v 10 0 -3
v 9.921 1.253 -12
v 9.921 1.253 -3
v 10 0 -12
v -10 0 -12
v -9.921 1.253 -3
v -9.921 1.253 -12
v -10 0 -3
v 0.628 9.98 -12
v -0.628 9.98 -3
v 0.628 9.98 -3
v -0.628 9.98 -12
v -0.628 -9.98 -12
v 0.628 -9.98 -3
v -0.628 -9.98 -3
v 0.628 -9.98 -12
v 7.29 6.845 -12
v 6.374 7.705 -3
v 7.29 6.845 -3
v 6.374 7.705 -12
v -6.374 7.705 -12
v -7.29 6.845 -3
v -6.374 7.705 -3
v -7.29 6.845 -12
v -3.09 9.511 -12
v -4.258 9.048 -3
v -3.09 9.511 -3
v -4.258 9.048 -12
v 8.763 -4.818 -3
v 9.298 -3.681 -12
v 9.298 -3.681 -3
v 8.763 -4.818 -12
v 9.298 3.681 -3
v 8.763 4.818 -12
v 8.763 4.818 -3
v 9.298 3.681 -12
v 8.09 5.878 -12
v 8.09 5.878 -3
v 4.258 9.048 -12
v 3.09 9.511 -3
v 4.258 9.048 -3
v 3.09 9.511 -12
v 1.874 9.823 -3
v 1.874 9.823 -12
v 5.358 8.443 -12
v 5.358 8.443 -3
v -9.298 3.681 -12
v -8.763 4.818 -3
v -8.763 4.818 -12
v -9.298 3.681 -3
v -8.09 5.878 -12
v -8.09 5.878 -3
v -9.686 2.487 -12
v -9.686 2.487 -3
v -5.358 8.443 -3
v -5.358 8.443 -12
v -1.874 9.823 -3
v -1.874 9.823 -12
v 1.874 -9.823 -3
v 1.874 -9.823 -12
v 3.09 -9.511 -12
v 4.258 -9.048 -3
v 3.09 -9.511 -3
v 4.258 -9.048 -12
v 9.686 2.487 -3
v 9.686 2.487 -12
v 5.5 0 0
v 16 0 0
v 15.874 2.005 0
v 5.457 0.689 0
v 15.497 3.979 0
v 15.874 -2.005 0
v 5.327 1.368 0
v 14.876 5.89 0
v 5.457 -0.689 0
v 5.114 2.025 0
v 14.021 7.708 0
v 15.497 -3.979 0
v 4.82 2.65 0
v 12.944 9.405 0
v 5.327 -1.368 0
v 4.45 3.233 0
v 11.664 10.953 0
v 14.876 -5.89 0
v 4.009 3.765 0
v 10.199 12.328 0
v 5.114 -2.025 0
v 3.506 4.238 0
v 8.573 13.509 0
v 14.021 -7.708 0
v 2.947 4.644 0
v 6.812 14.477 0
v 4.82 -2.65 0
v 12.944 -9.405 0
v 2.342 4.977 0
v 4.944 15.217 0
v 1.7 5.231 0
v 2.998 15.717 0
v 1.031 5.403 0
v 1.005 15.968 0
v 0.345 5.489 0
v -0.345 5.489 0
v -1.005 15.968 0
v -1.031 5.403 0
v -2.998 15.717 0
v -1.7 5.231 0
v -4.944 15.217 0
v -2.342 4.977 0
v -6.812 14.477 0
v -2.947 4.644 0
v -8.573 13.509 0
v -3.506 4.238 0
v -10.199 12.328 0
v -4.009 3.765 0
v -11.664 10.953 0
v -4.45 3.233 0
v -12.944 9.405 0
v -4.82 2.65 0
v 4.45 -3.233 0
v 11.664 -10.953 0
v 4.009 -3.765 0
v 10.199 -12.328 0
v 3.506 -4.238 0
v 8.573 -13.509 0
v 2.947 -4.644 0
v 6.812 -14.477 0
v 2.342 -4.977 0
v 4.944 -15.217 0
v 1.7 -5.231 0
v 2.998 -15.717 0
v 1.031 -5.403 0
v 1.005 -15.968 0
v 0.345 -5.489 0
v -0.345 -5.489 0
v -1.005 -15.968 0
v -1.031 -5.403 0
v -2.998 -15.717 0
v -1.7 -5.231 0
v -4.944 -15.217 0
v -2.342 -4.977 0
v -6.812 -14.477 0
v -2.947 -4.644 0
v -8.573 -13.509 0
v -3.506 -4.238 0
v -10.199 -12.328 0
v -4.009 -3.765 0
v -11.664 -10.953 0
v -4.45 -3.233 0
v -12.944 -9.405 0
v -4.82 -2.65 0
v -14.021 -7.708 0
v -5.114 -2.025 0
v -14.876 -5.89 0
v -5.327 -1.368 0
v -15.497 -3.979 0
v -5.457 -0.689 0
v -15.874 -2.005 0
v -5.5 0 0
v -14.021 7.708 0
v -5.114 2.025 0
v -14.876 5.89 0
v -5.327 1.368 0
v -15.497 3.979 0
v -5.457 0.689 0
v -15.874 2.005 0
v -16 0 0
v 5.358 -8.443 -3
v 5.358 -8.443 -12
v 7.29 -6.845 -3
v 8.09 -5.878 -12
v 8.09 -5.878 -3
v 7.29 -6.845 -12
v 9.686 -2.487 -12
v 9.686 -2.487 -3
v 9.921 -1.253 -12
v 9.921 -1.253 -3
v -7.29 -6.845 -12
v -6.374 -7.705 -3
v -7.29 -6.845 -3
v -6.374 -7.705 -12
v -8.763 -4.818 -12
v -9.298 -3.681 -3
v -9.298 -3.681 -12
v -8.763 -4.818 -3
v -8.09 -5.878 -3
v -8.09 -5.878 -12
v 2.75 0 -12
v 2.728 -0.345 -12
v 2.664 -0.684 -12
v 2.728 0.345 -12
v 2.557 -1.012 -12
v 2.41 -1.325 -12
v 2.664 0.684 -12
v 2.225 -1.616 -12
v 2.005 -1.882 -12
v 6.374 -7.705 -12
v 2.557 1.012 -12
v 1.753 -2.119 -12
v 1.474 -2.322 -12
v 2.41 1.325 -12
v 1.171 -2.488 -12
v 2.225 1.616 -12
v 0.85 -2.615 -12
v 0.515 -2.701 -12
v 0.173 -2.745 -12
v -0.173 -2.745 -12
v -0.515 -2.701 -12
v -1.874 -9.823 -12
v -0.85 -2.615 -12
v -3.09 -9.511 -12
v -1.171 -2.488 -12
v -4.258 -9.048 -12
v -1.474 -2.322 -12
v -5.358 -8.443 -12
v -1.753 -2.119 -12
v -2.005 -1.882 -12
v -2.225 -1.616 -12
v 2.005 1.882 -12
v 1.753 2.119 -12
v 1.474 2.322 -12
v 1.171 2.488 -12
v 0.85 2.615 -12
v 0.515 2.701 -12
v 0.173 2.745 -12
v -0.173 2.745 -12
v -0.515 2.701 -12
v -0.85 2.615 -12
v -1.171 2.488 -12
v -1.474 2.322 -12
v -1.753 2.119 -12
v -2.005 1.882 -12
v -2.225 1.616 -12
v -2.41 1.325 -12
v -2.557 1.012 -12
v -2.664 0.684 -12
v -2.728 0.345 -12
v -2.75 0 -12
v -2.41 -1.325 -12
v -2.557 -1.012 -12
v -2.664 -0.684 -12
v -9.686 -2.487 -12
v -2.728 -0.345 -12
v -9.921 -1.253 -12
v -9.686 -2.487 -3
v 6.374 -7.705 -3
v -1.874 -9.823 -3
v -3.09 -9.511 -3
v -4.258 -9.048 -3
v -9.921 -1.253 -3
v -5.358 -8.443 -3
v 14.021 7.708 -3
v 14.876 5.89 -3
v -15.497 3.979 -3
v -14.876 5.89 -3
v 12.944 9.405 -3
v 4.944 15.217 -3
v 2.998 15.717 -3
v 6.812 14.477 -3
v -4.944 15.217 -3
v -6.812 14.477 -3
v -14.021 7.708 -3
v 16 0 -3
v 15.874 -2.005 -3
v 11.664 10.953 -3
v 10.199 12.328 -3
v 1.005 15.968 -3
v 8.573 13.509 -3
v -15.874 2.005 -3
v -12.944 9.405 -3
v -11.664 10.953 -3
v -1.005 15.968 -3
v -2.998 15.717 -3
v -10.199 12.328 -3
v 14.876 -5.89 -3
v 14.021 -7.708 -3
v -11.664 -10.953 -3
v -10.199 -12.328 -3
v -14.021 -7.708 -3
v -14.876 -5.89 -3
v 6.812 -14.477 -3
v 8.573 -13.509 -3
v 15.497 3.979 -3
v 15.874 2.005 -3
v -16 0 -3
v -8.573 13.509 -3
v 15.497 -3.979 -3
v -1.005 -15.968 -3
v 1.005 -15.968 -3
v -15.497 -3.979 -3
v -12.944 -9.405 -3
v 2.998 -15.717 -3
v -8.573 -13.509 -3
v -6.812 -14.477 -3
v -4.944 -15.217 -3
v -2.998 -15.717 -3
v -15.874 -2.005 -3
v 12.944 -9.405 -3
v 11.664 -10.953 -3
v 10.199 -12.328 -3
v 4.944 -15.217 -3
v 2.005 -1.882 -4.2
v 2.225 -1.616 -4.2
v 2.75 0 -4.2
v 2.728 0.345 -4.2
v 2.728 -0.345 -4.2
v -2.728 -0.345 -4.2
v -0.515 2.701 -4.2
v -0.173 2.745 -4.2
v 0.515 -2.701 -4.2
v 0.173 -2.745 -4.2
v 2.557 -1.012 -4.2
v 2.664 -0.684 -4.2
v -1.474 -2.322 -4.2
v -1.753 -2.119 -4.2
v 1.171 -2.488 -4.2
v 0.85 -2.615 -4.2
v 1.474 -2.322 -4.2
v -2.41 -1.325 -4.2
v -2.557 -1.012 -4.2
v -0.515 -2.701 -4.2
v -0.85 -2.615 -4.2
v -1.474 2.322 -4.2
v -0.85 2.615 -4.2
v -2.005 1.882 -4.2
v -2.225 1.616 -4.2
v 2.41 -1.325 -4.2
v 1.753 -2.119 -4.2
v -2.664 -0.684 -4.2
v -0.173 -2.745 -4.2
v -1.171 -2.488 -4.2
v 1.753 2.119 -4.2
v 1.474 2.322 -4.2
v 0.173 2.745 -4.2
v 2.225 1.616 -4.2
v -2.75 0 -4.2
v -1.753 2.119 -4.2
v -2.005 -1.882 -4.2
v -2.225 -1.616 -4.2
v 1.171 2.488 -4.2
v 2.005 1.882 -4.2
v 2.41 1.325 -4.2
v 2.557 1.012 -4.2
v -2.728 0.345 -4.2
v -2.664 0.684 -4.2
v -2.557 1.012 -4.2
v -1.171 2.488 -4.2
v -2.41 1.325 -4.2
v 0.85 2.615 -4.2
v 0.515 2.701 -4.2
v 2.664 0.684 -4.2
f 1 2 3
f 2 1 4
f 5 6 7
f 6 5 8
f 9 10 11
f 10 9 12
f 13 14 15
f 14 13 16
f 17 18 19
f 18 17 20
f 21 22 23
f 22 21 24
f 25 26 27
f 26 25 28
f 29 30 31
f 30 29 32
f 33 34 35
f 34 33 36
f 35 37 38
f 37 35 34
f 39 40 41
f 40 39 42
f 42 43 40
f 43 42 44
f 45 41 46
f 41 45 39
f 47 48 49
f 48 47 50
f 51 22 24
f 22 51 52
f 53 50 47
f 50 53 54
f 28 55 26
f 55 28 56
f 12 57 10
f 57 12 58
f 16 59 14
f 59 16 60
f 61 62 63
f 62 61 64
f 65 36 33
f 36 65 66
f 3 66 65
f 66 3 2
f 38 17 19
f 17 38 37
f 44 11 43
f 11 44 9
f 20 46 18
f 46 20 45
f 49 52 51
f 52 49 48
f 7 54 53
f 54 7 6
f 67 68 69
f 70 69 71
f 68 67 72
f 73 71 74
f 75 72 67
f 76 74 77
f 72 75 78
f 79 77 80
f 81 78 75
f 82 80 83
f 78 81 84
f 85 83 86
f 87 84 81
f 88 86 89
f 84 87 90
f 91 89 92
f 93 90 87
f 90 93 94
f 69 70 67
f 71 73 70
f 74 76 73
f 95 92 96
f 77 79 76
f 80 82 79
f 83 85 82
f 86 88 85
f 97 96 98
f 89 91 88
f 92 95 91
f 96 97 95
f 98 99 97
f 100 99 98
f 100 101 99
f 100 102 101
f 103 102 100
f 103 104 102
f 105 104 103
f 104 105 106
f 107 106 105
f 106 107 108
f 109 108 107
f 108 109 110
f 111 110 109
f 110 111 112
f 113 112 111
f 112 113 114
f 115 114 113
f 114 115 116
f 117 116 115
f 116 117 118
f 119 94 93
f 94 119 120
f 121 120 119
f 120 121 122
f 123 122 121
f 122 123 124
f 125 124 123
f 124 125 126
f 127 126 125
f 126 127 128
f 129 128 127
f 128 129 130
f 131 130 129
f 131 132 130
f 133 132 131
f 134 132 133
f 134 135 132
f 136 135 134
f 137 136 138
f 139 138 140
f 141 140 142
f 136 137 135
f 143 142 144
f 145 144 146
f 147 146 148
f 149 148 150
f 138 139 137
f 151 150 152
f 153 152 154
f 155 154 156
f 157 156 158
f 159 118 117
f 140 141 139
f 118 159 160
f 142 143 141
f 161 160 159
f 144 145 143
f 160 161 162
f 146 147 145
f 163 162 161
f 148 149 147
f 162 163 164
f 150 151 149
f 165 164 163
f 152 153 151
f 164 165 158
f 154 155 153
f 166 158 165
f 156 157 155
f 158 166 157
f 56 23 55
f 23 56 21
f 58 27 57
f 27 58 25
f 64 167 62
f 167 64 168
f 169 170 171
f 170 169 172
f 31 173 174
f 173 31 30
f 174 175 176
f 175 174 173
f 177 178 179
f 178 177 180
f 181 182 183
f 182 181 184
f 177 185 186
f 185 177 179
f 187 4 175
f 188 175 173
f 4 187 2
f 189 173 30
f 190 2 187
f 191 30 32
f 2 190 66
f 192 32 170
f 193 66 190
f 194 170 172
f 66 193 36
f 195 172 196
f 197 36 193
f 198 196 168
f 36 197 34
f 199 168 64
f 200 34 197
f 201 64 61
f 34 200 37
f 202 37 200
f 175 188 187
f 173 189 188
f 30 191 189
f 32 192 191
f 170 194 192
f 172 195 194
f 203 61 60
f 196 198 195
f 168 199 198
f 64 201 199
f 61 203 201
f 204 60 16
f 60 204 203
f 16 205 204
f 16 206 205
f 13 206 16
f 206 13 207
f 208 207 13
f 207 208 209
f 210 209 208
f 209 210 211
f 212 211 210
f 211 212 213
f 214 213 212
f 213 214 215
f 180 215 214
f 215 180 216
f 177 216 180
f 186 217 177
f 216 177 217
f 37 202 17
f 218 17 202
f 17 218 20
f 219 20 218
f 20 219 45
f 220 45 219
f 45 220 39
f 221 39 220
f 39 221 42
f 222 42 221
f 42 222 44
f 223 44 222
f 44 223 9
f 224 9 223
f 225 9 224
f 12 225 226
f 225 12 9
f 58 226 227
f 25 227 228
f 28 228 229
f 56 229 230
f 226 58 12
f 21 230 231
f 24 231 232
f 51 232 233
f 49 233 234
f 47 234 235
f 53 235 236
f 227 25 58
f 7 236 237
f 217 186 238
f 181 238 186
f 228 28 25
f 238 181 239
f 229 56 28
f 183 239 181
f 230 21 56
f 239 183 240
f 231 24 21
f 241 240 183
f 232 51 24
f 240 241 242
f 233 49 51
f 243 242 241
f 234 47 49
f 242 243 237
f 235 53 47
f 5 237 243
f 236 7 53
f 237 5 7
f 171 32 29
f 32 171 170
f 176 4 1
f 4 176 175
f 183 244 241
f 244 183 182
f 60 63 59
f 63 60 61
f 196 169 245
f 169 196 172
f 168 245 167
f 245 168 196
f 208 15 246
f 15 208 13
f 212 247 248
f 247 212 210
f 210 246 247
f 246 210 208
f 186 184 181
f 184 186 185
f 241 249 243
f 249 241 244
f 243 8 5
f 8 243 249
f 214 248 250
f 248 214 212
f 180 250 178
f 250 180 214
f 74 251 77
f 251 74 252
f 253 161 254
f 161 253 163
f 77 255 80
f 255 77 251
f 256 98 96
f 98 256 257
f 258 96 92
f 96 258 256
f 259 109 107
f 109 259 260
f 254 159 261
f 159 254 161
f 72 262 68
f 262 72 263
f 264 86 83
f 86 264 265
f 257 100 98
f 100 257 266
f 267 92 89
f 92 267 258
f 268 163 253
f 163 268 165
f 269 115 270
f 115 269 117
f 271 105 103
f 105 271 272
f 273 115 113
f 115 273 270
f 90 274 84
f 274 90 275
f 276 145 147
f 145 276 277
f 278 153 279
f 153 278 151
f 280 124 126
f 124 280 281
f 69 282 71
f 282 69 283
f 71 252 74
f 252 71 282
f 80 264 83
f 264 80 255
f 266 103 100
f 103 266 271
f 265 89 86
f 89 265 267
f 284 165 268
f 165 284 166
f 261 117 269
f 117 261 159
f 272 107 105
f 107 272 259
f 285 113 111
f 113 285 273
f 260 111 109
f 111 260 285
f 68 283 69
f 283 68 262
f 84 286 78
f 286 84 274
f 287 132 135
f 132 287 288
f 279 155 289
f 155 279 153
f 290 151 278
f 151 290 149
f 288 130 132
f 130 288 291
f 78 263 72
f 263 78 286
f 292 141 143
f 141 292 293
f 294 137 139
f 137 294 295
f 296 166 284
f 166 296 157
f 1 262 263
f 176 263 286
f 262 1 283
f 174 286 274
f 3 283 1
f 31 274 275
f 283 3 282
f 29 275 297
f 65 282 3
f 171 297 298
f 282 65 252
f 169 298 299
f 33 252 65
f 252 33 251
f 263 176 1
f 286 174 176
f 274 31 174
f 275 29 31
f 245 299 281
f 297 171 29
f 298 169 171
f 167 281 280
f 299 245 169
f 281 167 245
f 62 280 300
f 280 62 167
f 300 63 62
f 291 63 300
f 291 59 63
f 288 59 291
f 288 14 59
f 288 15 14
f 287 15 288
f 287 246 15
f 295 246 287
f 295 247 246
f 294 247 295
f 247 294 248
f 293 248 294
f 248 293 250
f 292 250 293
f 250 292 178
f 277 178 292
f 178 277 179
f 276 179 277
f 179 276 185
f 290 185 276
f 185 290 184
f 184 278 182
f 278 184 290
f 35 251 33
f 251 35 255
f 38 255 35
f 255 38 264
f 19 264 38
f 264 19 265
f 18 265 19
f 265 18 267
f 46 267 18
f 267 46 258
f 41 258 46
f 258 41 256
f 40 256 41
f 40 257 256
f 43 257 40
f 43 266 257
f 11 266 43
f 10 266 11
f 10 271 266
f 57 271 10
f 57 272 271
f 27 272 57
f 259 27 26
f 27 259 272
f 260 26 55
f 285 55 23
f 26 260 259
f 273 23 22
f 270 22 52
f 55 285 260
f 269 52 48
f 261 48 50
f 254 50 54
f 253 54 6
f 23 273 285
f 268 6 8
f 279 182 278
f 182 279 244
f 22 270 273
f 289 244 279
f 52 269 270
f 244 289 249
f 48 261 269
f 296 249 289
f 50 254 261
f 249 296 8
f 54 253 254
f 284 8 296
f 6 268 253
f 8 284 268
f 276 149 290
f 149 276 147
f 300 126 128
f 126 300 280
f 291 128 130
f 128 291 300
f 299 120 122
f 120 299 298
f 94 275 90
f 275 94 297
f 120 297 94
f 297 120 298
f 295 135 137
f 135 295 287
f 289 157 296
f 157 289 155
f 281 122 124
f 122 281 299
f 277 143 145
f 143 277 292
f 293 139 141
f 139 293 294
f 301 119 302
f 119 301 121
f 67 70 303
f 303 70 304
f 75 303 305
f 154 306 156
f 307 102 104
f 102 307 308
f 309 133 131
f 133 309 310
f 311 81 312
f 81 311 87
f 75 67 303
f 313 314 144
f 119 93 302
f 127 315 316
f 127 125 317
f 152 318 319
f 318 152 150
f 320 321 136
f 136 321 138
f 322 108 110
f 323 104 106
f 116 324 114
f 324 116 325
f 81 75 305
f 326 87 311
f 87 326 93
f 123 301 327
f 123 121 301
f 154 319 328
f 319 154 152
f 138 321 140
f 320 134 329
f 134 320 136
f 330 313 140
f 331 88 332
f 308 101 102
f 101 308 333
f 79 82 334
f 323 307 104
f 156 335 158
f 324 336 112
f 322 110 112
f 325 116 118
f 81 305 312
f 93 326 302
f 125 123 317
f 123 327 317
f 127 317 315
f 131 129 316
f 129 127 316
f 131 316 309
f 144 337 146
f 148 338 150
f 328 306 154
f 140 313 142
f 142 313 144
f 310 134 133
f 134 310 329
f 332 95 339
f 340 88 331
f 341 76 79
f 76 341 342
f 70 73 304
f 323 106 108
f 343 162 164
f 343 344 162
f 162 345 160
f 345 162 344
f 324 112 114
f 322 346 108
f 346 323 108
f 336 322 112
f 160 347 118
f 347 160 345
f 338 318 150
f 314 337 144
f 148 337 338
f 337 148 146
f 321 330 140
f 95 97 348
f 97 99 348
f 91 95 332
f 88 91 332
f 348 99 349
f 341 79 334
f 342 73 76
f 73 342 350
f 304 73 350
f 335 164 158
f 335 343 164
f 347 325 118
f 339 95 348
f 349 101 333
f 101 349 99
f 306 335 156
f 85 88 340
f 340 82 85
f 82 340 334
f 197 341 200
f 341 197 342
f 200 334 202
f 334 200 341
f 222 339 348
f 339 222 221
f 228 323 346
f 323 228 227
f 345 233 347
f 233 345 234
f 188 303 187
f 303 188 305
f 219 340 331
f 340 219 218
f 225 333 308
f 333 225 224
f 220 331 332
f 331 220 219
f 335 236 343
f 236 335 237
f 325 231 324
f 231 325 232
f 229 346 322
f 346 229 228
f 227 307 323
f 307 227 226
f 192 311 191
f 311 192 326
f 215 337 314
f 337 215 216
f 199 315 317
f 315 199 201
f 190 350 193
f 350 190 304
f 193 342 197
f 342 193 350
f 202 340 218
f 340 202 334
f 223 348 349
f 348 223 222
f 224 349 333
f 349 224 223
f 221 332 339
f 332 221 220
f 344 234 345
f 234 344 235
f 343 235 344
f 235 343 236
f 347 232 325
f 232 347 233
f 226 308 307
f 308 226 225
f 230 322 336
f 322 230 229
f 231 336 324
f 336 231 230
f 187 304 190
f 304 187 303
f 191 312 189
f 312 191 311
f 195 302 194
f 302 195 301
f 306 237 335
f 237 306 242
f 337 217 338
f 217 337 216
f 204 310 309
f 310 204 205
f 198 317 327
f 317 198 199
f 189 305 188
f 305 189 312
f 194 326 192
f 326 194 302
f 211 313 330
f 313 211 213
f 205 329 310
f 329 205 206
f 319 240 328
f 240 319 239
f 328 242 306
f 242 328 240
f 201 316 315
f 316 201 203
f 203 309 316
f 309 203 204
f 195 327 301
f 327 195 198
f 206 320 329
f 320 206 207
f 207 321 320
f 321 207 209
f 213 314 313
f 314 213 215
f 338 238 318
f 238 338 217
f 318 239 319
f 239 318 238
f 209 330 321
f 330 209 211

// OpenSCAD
$fn = 50;


difference() {
	union() {
		translate(v = [0, 0, -12.0000000000]) {
			cylinder(h = 12, r = 10.0000000000);
		}
		translate(v = [0, 0, -3.0000000000]) {
			cylinder(h = 3, r = 16.0000000000);
		}
	}
	union() {
		translate(v = [0, 0, 0]) {
			rotate(a = [0, 0, 0]) {
				difference() {
					union() {
						#translate(v = [0, 0, -12.0000000000]) {
							cylinder(h = 12, r = 2.2500000000);
						}
						#translate(v = [0, 0, -4.2000000000]) {
							cylinder(h = 4.2000000000, r = 10.0000000000, r1 = 2.7500000000, r2 = 5.5000000000);
						}
						#translate(v = [0, 0, -12.0000000000]) {
							cylinder(h = 12, r = 2.7500000000);
						}
						#translate(v = [0, 0, -12.0000000000]) {
							cylinder(h = 12, r = 2.2500000000);
						}
					}
					union();
				}
			}
		}
	}
}
